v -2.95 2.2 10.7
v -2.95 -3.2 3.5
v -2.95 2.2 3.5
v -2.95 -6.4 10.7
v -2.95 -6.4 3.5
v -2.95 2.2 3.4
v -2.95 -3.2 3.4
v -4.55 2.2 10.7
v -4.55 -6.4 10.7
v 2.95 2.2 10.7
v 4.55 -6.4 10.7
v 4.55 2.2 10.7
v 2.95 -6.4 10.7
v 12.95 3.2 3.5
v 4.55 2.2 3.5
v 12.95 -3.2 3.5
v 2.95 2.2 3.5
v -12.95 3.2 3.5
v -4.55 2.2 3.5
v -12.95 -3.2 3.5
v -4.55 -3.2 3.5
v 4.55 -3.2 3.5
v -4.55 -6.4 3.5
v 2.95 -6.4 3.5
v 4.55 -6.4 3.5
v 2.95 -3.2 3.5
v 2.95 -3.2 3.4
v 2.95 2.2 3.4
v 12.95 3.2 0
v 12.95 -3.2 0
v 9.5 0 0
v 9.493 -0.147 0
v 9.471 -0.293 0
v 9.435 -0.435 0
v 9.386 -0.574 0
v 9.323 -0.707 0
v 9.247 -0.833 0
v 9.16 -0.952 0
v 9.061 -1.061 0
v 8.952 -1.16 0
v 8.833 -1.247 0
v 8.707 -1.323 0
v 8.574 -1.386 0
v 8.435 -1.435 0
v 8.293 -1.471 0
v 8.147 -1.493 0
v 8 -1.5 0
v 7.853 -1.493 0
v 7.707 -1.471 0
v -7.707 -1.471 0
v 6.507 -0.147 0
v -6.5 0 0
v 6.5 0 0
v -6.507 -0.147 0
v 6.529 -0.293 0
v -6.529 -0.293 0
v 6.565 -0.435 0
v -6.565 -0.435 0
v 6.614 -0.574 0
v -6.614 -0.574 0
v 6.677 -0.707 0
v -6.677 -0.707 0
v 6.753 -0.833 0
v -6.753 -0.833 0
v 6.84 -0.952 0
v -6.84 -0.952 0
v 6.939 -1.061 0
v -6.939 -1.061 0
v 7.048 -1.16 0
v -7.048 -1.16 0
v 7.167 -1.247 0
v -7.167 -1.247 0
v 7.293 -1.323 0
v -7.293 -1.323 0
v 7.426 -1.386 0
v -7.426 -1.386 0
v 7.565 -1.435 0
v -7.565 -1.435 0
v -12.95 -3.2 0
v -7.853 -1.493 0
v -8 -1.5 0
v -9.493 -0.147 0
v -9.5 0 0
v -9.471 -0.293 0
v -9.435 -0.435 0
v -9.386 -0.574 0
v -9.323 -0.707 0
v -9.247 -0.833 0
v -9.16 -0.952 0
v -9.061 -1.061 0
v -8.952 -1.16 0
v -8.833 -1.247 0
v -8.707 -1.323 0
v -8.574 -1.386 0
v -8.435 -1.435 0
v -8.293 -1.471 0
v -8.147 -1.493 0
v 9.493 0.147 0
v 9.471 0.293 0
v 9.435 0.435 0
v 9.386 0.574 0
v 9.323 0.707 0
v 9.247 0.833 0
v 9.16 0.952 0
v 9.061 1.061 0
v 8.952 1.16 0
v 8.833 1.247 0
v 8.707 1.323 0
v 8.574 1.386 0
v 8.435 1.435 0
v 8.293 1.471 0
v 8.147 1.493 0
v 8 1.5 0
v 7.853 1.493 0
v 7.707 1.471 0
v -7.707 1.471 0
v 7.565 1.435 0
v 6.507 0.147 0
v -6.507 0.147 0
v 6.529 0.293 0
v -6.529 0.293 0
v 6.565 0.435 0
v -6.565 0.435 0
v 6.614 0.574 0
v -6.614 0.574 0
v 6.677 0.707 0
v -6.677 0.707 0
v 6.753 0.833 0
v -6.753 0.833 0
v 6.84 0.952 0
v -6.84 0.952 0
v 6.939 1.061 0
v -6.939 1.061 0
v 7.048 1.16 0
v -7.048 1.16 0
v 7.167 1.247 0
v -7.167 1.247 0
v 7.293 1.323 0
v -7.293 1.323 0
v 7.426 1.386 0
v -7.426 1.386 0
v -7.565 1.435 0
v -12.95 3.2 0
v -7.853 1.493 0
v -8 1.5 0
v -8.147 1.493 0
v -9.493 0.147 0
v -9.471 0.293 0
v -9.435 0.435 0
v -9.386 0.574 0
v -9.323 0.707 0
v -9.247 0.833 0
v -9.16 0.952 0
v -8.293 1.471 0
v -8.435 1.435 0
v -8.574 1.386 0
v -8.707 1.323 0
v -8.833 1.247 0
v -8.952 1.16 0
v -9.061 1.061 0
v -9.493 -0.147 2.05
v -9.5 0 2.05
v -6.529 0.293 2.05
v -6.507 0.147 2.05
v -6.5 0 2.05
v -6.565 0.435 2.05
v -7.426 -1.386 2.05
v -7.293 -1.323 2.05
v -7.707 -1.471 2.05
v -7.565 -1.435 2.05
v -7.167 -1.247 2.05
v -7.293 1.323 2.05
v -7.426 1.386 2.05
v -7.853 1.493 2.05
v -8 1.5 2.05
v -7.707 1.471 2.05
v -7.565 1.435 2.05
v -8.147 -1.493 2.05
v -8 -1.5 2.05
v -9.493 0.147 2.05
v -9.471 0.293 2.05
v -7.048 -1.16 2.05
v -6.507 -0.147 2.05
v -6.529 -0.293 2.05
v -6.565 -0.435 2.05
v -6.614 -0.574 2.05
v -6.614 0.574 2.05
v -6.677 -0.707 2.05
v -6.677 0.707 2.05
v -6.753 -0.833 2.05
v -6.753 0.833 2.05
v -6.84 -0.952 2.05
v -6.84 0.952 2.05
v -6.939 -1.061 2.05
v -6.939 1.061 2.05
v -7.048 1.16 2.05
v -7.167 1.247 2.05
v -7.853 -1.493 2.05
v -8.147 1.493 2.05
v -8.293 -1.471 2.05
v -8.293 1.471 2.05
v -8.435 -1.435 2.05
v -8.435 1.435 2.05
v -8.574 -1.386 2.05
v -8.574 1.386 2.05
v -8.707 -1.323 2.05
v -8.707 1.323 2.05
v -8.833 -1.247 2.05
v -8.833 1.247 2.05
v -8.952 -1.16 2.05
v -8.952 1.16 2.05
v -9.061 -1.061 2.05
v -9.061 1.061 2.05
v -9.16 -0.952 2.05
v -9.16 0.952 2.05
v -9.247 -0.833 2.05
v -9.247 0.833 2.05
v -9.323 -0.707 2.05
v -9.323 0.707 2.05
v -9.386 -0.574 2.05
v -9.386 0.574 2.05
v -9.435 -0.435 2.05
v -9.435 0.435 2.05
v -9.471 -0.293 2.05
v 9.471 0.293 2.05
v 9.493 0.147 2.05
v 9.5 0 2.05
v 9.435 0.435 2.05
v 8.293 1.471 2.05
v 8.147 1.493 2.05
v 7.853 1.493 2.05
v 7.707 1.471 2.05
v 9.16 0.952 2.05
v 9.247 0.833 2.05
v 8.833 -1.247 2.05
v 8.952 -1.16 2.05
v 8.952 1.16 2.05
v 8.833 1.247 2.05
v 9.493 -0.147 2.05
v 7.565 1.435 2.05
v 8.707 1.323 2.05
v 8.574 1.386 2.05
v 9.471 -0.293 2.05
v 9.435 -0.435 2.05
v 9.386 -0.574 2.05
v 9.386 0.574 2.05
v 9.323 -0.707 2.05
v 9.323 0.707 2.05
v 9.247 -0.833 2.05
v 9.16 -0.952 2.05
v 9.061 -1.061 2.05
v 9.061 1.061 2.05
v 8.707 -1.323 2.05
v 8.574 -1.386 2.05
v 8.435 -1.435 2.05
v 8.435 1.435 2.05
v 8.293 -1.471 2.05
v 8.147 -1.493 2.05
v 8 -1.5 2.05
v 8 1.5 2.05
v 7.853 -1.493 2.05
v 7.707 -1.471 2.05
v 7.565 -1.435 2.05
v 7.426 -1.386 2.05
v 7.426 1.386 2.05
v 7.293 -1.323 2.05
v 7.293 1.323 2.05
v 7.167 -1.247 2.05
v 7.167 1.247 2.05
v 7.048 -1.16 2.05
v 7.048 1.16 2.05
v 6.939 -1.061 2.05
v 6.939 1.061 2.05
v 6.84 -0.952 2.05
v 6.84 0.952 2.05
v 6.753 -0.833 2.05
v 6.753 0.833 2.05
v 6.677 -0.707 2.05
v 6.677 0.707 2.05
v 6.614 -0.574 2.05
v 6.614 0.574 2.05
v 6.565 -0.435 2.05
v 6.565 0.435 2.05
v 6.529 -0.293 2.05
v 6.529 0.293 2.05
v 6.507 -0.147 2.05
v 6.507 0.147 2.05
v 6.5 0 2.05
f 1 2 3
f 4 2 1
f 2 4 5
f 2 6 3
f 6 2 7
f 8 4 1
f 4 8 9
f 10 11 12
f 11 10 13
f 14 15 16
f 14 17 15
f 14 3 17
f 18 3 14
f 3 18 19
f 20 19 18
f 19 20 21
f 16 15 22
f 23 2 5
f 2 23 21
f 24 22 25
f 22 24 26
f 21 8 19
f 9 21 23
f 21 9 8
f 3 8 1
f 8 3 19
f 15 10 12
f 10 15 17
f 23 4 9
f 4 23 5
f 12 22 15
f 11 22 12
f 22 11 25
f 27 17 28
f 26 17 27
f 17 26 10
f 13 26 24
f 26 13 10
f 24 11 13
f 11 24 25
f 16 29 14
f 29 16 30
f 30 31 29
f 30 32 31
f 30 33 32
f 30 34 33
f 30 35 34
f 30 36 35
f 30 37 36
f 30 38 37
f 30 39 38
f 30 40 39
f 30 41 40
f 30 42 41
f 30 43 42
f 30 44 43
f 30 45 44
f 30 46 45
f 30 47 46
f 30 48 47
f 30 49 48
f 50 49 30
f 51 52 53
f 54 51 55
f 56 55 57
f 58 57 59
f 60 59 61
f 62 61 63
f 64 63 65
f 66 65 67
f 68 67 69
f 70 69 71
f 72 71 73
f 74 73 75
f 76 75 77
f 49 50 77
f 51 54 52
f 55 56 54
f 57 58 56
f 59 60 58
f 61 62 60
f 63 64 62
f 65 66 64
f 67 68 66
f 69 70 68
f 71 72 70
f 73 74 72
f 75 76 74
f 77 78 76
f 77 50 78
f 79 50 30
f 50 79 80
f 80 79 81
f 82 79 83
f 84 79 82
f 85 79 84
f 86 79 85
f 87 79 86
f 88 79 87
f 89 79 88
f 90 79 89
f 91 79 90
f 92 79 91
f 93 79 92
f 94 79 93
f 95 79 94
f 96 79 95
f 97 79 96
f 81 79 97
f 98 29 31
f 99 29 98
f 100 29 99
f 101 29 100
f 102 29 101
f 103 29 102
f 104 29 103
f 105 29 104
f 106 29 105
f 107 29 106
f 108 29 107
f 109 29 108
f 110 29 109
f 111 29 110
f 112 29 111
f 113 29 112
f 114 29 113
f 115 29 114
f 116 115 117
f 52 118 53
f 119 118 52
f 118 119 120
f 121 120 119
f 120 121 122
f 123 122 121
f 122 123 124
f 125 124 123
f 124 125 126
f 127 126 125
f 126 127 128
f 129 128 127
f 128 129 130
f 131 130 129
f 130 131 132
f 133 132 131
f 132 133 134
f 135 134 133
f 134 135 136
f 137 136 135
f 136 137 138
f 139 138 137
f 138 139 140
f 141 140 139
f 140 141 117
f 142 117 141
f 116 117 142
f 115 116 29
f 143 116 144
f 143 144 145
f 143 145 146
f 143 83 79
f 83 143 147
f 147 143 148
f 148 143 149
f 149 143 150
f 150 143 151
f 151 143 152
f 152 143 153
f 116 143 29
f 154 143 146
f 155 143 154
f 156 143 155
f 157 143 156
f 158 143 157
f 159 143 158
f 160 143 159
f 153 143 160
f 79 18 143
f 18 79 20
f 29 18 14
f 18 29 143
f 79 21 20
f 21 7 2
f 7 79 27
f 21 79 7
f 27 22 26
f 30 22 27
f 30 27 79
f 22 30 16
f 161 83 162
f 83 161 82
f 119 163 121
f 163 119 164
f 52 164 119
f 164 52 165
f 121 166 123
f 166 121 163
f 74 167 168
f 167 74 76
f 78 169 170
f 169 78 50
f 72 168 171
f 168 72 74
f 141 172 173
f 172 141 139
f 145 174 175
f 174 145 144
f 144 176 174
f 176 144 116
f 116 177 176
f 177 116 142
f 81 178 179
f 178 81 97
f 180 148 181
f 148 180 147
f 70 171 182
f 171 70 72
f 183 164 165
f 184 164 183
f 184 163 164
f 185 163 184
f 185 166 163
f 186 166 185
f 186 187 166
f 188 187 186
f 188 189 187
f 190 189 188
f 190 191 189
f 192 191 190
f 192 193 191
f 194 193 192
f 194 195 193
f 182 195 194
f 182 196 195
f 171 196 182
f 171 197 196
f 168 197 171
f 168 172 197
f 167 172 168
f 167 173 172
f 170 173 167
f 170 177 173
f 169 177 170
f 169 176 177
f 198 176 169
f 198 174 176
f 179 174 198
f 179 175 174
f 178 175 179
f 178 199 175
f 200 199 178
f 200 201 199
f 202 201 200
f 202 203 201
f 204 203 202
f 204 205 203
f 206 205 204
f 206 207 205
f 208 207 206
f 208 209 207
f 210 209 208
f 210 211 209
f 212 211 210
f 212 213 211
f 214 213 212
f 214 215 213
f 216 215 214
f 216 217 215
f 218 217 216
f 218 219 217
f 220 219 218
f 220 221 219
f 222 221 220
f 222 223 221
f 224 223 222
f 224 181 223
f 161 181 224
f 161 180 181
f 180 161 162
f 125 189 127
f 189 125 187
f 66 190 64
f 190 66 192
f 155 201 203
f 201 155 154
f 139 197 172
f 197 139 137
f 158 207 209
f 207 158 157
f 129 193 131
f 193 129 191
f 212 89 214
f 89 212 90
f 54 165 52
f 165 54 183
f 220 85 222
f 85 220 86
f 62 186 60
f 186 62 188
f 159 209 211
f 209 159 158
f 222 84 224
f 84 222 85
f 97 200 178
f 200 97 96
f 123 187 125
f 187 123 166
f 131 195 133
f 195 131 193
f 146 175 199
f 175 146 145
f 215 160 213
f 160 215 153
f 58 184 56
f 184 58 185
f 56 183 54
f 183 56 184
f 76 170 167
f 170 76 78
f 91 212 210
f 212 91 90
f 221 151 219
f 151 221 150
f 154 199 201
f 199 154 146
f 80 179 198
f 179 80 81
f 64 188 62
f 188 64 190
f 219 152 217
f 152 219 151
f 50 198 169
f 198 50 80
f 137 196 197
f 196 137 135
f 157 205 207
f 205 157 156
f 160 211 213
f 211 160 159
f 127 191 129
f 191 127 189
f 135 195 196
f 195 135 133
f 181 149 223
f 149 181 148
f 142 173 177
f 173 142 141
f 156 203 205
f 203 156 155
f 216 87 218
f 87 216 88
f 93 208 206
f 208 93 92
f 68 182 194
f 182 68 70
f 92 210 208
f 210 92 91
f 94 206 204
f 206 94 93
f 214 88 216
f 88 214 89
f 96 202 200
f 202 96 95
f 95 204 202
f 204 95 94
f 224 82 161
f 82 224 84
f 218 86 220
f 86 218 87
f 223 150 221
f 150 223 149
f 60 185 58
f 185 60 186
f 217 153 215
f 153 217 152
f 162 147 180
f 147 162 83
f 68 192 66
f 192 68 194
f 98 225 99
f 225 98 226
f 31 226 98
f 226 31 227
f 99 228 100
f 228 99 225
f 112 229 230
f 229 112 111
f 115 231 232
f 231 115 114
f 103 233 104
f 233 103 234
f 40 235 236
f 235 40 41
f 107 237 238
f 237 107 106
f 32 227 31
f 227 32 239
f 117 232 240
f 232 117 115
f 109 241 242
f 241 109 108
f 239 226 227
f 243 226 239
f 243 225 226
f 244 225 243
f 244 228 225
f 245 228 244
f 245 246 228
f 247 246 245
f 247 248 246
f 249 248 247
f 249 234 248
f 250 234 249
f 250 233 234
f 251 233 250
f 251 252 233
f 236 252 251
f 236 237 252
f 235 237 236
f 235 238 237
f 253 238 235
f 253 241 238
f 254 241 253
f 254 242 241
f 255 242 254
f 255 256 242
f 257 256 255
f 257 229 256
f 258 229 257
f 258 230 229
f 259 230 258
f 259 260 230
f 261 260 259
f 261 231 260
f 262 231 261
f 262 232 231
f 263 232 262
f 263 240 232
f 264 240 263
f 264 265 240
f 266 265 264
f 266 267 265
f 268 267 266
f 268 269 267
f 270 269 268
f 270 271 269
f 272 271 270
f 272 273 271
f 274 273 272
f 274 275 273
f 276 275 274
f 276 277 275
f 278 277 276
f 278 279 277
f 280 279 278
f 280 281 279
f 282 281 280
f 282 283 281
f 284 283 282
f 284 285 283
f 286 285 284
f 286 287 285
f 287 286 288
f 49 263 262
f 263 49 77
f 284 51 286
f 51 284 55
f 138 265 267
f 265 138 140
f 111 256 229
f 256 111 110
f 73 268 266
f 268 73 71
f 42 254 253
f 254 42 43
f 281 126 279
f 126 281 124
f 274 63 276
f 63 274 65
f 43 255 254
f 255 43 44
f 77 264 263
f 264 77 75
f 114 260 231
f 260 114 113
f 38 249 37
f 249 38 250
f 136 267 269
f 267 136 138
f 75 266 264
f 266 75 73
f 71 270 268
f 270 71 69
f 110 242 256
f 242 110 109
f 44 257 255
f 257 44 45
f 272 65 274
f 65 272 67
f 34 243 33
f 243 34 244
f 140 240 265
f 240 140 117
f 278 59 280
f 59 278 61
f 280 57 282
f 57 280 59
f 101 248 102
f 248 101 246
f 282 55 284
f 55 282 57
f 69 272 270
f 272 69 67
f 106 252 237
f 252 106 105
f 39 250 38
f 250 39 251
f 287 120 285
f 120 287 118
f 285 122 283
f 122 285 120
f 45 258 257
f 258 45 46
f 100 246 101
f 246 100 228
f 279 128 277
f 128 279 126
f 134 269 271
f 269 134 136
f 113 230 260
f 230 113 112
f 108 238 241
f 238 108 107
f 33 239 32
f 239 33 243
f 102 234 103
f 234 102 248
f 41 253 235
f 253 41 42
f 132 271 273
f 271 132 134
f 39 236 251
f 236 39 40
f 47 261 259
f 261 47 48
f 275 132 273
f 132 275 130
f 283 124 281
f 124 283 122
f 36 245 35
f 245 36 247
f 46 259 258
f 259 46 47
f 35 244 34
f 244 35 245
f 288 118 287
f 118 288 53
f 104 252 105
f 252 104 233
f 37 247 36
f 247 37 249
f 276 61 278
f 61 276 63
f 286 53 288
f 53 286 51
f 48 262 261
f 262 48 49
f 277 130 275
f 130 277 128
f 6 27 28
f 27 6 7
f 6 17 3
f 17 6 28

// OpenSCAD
$fn = 64;

module photo_interrupter() {
    // Dimensions (mm)
    base_x = 25.9;
    base_y = 6.4;
    base_z = 3.5;

    gap_x = 5.9;      // slot width along X
    gap_y = 8.6;      // slot depth along Y (extends past base)
    gap_z = 7.2;      // slot height above base

    arm_t = 1.6;      // thickness of each arm (along X)
    body_x = gap_x + 2*arm_t; // overall fork width along X

    // Mounting holes
    hole_d = 3.0;
    hole_x_offset = 8.0;      // from center along X
    hole_y = 0;

    // Fork position on base
    fork_center_x = 0;
    fork_back_y = base_y/2 - 1.0; // near back edge
    fork_base_z = base_z;

    difference() {
        union() {
            // Base
            translate([0,0,base_z/2])
                cube([base_x, base_y, base_z], center=true);

            // Fork body (two arms + bridge)
            translate([fork_center_x, fork_back_y - gap_y/2, fork_base_z])
            union() {
                // Left arm
                translate([-(gap_x/2 + arm_t/2), 0, gap_z/2])
                    cube([arm_t, gap_y, gap_z], center=true);

                // Right arm
                translate([(gap_x/2 + arm_t/2), 0, gap_z/2])
                    cube([arm_t, gap_y, gap_z], center=true);

                // Back bridge connecting arms
                bridge_y = 2.2;
                translate([0, (gap_y/2 - bridge_y/2), gap_z/2])
                    cube([body_x, bridge_y, gap_z], center=true);

                // Small post/hood at top (typical interrupter cap)
                cap_z = 1.6;
                translate([0, (gap_y/2 - bridge_y), gap_z - cap_z/2])
                    cube([body_x, bridge_y*0.9, cap_z], center=true);
            }
        }

        // Slot cutout (optical gap)
        translate([fork_center_x, fork_back_y - gap_y/2, fork_base_z])
            translate([0,0,gap_z/2])
                cube([gap_x, gap_y, gap_z+0.2], center=true);

        // Mounting holes through base
        for (sx = [-1, 1]) {
            translate([sx*hole_x_offset, hole_y, 0])
                cylinder(d=hole_d, h=base_z+0.6, center=true);
        }
    }
}

photo_interrupter();
